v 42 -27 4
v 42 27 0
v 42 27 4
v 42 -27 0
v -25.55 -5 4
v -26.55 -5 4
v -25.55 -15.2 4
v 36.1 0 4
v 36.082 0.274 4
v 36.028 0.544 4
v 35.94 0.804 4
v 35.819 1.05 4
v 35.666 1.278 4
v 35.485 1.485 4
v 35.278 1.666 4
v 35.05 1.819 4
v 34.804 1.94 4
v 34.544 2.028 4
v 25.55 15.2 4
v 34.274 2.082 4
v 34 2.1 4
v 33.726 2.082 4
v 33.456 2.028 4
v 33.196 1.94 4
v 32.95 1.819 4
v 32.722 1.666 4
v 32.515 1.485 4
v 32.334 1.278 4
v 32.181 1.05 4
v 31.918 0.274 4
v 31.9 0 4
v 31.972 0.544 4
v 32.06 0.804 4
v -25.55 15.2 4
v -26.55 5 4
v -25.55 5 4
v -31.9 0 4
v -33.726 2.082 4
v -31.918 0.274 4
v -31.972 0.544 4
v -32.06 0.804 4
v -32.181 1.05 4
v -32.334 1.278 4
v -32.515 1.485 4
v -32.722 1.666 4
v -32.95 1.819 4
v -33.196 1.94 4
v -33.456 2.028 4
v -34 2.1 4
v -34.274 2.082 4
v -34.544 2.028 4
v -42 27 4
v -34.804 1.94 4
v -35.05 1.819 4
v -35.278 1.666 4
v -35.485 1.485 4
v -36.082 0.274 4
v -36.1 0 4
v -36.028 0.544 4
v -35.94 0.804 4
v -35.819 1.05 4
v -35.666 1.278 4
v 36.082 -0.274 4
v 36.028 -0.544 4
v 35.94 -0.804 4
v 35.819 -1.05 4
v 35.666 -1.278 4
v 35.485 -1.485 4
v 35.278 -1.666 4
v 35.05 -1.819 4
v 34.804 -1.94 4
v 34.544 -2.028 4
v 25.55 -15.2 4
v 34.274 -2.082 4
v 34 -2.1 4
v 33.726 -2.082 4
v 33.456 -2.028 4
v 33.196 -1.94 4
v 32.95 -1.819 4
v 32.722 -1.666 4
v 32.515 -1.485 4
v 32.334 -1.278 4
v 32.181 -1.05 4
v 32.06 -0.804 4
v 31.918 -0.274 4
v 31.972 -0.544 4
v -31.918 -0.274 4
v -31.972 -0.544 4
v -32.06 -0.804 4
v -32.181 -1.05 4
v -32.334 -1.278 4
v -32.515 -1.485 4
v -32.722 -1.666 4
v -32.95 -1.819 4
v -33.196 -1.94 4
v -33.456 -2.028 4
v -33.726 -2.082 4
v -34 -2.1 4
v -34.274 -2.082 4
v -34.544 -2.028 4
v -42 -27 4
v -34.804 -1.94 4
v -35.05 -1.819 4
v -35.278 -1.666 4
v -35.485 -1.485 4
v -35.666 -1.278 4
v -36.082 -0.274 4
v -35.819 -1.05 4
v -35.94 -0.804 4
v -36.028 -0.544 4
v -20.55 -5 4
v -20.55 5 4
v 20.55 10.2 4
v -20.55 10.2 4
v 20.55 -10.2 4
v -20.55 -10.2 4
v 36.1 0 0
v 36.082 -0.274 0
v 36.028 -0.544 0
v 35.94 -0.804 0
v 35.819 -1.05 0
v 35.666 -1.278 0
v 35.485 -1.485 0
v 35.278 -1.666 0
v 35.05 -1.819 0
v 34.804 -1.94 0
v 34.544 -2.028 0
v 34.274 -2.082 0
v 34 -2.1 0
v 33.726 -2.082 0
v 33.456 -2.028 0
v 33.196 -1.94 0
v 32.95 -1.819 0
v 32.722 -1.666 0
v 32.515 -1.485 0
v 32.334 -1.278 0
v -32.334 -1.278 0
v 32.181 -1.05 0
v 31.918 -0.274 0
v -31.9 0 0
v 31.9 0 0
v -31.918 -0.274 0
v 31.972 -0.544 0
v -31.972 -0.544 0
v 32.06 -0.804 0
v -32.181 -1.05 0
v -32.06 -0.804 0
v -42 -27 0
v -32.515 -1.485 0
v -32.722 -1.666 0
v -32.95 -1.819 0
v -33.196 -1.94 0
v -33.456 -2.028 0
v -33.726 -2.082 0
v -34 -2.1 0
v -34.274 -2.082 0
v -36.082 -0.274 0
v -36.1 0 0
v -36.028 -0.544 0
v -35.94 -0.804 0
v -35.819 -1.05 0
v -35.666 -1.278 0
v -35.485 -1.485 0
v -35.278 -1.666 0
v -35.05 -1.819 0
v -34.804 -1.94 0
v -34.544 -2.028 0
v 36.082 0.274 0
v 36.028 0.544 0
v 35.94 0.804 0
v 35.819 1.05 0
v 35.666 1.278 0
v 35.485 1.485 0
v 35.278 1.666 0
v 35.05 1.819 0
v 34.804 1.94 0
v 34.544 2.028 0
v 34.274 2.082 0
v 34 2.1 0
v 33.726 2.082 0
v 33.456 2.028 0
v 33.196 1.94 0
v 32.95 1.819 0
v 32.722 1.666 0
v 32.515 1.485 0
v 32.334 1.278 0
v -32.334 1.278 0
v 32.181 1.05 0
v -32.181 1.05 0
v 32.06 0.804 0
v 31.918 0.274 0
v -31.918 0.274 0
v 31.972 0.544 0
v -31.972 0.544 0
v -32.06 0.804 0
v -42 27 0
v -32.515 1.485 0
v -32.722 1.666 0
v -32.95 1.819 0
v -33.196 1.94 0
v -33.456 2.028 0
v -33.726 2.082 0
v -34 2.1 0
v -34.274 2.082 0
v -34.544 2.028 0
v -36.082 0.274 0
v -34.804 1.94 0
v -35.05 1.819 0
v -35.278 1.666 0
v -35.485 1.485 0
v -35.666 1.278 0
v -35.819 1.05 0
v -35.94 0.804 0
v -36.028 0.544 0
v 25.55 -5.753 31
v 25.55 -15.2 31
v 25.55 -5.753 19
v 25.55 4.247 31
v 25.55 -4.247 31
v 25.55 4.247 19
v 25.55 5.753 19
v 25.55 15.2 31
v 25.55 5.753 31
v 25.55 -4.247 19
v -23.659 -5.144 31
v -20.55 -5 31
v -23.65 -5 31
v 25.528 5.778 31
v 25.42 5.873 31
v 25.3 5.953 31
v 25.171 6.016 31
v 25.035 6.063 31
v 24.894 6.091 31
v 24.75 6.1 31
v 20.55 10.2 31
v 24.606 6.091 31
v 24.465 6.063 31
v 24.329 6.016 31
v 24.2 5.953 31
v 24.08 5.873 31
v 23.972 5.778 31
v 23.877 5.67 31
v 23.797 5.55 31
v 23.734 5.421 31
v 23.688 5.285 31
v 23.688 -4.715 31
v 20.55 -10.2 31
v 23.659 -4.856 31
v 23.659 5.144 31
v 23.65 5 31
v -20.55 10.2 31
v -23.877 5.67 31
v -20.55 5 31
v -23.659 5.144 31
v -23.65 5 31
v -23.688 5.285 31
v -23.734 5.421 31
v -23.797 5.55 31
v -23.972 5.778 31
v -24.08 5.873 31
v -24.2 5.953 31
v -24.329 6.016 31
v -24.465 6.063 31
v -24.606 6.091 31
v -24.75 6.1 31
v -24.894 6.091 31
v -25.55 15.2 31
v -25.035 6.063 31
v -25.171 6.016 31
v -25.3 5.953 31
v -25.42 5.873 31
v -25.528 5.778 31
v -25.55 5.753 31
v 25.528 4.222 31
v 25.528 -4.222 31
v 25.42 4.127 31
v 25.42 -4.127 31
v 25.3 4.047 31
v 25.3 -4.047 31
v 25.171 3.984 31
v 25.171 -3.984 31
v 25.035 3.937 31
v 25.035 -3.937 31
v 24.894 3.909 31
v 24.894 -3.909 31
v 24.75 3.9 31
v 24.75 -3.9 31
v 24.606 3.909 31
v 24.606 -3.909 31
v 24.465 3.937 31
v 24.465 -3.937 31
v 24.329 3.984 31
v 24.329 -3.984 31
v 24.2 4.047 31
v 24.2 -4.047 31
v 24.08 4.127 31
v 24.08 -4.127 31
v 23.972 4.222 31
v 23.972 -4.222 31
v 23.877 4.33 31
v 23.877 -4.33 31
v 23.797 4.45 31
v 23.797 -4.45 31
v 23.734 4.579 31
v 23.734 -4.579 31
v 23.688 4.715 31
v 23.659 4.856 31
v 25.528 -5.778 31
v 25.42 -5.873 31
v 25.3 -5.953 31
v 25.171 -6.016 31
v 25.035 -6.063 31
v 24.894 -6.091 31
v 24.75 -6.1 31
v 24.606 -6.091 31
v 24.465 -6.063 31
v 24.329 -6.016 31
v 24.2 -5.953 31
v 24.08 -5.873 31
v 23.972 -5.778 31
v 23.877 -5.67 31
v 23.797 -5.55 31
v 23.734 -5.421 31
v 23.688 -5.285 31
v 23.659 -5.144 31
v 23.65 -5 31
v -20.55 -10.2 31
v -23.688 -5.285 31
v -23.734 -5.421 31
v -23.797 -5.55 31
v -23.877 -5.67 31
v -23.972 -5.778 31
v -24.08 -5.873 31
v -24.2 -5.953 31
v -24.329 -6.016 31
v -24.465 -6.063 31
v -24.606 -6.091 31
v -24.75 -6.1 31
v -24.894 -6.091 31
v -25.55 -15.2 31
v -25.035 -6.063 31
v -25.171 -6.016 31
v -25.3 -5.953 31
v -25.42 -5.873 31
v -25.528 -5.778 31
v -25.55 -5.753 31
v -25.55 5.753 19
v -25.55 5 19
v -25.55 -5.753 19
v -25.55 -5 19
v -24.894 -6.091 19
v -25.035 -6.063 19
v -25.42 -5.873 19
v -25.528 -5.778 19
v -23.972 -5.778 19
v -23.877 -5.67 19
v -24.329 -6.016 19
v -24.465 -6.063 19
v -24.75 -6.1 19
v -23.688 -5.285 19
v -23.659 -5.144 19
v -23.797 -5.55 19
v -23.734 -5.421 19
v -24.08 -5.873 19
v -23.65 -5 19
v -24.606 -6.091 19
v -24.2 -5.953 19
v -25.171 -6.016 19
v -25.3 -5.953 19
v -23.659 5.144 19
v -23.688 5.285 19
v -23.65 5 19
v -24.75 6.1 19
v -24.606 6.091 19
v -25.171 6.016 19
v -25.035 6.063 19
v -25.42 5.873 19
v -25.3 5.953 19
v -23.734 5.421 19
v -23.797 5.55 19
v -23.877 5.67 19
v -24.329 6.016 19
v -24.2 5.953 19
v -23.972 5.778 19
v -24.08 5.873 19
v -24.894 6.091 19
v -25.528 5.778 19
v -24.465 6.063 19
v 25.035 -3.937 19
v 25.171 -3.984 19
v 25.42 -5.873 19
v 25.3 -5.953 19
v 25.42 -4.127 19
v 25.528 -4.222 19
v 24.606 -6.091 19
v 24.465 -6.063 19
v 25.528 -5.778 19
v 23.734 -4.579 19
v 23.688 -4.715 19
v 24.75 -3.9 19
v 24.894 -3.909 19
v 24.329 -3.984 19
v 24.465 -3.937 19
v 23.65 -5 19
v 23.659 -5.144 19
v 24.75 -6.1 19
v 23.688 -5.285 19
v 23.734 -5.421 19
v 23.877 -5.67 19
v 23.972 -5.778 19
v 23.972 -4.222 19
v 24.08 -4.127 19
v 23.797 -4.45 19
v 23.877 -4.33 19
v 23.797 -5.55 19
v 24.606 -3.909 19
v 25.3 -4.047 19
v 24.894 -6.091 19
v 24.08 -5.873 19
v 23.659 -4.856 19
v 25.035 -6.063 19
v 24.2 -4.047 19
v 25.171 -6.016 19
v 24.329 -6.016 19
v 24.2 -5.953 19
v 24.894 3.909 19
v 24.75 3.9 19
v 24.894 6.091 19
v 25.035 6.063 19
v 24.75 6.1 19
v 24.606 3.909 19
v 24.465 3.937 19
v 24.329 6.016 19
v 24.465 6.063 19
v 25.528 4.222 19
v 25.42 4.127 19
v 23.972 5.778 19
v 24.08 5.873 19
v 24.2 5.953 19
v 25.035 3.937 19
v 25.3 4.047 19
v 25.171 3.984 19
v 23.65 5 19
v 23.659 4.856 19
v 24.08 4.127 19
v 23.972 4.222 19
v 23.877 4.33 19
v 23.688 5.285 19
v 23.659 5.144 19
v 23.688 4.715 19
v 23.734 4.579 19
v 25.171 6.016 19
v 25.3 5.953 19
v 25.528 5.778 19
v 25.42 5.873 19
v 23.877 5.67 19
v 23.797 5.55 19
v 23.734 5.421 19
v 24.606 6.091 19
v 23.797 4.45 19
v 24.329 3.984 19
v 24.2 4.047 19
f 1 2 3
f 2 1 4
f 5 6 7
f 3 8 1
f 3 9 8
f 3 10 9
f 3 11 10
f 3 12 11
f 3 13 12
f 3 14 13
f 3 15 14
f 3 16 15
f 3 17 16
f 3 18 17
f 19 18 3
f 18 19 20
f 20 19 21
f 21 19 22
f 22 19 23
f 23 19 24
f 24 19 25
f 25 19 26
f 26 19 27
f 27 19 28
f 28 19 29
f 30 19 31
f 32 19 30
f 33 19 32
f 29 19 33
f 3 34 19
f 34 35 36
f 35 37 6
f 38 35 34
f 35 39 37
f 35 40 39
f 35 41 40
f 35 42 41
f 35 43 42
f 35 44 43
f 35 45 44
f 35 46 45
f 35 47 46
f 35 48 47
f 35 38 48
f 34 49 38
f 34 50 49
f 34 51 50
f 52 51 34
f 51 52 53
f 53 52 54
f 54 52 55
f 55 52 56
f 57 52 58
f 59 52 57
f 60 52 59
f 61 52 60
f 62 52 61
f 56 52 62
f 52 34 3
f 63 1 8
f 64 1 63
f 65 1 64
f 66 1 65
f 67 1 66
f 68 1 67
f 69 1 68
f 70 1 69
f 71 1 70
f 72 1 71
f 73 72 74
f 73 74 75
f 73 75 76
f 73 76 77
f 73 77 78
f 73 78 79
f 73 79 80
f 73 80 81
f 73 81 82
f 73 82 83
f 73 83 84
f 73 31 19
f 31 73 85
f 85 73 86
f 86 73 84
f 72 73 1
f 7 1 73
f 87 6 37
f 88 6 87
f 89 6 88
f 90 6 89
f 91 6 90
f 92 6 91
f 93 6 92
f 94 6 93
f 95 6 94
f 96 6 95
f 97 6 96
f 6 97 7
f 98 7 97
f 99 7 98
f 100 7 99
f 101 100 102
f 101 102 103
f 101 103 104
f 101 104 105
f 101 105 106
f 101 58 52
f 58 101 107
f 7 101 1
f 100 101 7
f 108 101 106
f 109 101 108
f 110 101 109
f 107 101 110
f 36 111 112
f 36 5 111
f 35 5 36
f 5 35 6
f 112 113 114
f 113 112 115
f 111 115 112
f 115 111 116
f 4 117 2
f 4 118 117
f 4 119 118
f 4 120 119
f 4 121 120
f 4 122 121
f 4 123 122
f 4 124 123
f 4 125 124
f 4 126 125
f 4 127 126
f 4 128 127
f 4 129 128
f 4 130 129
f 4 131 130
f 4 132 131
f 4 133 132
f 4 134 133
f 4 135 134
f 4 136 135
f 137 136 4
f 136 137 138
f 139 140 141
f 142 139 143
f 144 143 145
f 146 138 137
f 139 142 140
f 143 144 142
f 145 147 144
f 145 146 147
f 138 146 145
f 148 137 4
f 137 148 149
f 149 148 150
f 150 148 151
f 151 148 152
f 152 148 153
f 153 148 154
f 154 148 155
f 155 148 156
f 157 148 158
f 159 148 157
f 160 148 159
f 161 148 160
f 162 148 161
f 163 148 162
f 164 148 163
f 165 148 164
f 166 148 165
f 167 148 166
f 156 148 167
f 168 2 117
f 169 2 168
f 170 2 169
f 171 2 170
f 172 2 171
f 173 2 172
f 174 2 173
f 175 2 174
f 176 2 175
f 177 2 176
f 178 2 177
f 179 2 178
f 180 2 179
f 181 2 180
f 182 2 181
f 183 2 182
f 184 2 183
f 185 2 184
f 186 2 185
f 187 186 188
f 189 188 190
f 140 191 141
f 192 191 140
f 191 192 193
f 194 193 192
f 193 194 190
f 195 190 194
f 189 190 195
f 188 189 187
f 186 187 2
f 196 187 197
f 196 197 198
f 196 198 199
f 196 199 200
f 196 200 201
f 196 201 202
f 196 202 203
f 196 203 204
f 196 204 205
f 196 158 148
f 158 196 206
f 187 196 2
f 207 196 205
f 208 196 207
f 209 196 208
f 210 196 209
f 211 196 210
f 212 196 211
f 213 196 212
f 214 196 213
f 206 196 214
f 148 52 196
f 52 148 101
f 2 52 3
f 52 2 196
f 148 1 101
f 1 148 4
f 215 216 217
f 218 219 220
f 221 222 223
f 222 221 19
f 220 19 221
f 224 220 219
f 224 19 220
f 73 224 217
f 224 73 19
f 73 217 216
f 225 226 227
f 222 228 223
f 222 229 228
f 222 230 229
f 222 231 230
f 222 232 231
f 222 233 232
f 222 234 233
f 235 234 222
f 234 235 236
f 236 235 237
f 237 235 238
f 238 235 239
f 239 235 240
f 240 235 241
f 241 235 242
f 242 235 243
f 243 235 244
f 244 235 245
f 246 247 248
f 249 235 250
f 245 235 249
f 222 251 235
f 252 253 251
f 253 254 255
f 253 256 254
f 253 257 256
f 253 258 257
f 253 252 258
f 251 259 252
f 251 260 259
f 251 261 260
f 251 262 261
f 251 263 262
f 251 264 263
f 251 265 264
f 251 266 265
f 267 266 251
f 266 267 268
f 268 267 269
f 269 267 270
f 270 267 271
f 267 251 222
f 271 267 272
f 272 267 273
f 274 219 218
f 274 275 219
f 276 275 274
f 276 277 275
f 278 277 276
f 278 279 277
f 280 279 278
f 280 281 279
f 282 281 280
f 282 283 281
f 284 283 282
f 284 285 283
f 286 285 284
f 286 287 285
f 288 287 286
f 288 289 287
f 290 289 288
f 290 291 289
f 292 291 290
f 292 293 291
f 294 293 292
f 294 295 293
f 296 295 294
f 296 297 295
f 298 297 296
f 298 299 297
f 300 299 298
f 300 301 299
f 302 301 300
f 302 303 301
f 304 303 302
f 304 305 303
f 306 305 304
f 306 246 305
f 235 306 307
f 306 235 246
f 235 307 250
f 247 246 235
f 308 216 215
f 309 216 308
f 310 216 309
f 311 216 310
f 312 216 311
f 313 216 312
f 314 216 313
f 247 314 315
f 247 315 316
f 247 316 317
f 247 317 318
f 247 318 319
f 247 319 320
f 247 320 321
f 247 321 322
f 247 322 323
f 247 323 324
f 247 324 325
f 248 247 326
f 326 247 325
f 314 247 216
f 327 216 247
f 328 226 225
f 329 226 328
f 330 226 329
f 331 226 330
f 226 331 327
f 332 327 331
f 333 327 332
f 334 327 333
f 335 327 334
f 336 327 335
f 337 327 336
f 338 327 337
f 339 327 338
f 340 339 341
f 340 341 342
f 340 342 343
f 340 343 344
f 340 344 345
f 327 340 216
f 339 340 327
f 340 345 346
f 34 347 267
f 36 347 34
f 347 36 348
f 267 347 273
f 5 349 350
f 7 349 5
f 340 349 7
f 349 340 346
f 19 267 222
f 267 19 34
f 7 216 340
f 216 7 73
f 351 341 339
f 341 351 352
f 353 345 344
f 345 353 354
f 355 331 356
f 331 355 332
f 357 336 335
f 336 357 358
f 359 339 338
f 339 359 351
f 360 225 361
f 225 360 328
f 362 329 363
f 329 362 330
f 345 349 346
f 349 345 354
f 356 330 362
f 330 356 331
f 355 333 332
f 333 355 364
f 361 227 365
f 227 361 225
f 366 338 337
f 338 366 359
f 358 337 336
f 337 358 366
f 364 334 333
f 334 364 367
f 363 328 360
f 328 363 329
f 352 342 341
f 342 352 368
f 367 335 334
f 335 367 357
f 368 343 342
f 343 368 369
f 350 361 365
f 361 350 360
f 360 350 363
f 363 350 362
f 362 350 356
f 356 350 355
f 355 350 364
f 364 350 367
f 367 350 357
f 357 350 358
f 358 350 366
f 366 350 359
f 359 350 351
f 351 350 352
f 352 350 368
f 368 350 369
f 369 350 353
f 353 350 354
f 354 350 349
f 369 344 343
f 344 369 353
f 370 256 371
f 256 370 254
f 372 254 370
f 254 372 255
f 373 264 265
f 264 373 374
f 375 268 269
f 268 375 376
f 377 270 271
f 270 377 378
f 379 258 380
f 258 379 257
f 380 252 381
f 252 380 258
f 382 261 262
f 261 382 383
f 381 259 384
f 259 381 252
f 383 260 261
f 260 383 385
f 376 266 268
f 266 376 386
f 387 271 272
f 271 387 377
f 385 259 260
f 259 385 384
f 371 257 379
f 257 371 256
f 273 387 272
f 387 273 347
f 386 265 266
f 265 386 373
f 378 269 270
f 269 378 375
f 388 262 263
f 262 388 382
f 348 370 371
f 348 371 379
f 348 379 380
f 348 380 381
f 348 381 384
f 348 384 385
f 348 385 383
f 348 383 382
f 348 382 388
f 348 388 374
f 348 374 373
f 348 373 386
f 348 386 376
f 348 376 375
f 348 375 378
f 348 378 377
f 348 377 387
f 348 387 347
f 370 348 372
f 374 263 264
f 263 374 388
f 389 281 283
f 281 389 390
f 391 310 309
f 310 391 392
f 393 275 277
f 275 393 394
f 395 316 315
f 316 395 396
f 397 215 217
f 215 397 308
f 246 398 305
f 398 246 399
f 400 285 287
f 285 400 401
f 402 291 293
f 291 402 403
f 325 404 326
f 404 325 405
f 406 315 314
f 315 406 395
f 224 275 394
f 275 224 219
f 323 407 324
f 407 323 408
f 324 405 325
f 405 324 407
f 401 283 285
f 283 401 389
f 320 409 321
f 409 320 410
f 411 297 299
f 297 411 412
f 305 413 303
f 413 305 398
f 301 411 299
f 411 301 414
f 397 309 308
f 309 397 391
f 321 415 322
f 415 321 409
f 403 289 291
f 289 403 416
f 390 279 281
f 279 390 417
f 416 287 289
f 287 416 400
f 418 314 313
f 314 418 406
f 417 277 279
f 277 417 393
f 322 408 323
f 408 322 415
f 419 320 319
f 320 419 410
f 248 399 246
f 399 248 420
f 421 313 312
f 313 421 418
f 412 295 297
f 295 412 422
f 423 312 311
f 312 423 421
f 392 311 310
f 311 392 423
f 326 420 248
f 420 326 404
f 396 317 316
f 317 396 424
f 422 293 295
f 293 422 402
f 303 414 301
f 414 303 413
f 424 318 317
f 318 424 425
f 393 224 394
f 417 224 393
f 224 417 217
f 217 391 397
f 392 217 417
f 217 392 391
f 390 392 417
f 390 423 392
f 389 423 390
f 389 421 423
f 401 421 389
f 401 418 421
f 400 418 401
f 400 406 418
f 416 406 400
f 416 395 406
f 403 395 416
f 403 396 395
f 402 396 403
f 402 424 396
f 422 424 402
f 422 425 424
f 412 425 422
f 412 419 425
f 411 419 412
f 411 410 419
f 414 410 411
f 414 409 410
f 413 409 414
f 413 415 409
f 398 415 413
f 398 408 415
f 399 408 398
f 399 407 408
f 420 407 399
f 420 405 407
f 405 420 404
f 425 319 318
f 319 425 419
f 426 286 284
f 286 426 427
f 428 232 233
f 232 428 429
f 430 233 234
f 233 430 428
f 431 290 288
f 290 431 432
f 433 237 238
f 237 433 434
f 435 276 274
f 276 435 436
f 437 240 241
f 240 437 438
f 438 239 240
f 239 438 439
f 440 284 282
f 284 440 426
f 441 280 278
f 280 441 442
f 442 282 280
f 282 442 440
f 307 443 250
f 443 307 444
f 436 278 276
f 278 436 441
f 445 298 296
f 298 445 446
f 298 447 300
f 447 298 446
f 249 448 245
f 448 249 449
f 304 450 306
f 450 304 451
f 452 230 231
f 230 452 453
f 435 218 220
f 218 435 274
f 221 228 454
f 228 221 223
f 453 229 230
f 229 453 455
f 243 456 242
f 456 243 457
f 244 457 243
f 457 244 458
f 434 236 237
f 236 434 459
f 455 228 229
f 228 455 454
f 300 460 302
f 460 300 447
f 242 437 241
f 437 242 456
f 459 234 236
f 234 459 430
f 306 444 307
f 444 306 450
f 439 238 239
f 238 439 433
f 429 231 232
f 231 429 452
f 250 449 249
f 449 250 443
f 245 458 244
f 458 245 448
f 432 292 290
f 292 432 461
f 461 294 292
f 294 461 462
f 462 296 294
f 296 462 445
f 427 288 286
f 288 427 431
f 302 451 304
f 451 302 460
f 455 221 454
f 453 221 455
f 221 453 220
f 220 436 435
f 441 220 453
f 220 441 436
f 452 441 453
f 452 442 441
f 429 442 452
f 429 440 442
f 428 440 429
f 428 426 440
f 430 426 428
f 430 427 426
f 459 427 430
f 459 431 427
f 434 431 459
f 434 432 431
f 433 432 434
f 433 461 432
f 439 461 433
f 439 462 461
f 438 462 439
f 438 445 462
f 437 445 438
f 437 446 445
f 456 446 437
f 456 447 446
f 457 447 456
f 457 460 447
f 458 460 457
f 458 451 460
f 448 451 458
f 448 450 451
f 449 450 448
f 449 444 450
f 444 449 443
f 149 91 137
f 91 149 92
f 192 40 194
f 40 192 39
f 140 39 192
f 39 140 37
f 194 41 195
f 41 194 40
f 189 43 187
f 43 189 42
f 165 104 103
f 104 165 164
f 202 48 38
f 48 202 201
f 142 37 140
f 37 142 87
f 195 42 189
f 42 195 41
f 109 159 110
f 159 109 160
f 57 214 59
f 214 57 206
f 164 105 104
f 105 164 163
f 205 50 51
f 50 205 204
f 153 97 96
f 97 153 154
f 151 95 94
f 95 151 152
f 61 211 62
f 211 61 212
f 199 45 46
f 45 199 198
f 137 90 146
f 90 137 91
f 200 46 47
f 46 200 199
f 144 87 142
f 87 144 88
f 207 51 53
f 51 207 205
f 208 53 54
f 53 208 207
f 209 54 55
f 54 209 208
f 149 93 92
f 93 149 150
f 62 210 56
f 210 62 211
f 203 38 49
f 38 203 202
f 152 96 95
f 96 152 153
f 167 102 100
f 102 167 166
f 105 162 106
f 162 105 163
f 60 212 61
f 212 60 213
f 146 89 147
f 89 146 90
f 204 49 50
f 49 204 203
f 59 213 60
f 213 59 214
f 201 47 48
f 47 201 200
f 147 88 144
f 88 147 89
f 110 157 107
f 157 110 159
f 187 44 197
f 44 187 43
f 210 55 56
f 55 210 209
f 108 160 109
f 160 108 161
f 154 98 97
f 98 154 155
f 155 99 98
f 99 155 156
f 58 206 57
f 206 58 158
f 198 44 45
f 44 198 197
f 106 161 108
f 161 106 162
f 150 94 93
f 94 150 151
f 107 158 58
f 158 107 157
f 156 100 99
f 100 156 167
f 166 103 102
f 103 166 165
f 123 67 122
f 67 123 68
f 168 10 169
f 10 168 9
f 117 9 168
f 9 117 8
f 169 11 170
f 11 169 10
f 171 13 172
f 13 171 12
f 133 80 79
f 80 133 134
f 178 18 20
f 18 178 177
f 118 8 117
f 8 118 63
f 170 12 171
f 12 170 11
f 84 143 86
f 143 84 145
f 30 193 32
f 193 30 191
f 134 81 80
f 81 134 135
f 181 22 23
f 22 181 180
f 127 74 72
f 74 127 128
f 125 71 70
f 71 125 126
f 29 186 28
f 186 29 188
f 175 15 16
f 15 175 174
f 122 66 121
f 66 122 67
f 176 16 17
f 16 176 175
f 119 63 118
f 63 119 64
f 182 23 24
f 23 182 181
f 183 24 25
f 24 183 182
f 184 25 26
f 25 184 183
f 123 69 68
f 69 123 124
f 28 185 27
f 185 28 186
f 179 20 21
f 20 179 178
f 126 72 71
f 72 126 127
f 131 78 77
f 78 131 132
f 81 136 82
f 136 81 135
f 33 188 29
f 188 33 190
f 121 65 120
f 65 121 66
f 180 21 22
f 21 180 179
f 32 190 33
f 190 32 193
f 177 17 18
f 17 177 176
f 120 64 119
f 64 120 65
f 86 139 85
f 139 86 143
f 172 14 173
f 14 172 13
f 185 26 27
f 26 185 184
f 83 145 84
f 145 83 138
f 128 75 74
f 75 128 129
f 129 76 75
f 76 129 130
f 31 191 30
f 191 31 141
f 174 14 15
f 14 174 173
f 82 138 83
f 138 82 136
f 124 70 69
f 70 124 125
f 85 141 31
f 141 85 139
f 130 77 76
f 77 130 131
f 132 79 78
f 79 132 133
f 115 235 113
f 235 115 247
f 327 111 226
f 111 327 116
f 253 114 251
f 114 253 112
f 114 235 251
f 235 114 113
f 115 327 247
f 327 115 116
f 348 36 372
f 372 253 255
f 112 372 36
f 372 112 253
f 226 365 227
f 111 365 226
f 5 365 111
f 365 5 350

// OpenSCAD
// ARC Scan - MG996R 서보 스탠드
// 서보를 출력축이 위를 보게 세워서 고정하는 받침대
// MG996R 표준 치수 기반. 출력 전 본인 서보 실측으로 아래 변수 확인 권장

$fn = 48;

// ===== 실측 확인 변수 =====
servo_len   = 40.7;   // 서보 몸통 길이 (플랜지 제외)
servo_wid   = 20.0;   // 서보 몸통 폭
clearance   = 0.4;    // 끼움 여유
hole_span_l = 49.5;   // 플랜지 나사구멍 간격 (긴 방향, 대각 아님)
hole_span_w = 10.0;   // 플랜지 나사구멍 간격 (짧은 방향)
flange_h    = 27.0;   // 몸통 바닥에서 플랜지 아랫면까지 높이
screw_d     = 2.2;    // 나사 구멍 지름 (M2.5 셀프태핑 기준)

// ===== 스탠드 형상 =====
base_w = 84; base_d = 54; base_t = 4;   // 바닥판
body_w = servo_len + clearance;
body_d = servo_wid + clearance;
wall   = 5;

difference() {
  union() {
    // 바닥판
    translate([-base_w/2, -base_d/2, 0]) cube([base_w, base_d, base_t]);
    // 서보 포켓 벽체 (플랜지가 벽 윗면에 얹힘)
    translate([-(body_w/2+wall), -(body_d/2+wall), 0])
      cube([body_w + 2*wall, body_d + 2*wall, base_t + flange_h]);
  }
  // 서보 몸통 관통 포켓
  translate([-body_w/2, -body_d/2, base_t])
    cube([body_w, body_d, flange_h + 1]);
  // 케이블 빠져나갈 홈
  translate([-body_w/2 - wall - 1, -5, base_t])
    cube([wall + 2, 10, flange_h + 1]);
  // 플랜지 나사 파일럿 구멍 4개
  for (sx = [-1, 1]) for (sy = [-1, 1])
    translate([sx*hole_span_l/2, sy*hole_span_w/2, base_t + flange_h - 12])
      cylinder(d = screw_d, h = 13);
  // 바닥 고정용 구멍 (책상 클램프/나사, 선택)
  for (sx = [-1, 1])
    translate([sx*(base_w/2 - 8), 0, -1]) cylinder(d = 4.2, h = base_t + 2);
}
